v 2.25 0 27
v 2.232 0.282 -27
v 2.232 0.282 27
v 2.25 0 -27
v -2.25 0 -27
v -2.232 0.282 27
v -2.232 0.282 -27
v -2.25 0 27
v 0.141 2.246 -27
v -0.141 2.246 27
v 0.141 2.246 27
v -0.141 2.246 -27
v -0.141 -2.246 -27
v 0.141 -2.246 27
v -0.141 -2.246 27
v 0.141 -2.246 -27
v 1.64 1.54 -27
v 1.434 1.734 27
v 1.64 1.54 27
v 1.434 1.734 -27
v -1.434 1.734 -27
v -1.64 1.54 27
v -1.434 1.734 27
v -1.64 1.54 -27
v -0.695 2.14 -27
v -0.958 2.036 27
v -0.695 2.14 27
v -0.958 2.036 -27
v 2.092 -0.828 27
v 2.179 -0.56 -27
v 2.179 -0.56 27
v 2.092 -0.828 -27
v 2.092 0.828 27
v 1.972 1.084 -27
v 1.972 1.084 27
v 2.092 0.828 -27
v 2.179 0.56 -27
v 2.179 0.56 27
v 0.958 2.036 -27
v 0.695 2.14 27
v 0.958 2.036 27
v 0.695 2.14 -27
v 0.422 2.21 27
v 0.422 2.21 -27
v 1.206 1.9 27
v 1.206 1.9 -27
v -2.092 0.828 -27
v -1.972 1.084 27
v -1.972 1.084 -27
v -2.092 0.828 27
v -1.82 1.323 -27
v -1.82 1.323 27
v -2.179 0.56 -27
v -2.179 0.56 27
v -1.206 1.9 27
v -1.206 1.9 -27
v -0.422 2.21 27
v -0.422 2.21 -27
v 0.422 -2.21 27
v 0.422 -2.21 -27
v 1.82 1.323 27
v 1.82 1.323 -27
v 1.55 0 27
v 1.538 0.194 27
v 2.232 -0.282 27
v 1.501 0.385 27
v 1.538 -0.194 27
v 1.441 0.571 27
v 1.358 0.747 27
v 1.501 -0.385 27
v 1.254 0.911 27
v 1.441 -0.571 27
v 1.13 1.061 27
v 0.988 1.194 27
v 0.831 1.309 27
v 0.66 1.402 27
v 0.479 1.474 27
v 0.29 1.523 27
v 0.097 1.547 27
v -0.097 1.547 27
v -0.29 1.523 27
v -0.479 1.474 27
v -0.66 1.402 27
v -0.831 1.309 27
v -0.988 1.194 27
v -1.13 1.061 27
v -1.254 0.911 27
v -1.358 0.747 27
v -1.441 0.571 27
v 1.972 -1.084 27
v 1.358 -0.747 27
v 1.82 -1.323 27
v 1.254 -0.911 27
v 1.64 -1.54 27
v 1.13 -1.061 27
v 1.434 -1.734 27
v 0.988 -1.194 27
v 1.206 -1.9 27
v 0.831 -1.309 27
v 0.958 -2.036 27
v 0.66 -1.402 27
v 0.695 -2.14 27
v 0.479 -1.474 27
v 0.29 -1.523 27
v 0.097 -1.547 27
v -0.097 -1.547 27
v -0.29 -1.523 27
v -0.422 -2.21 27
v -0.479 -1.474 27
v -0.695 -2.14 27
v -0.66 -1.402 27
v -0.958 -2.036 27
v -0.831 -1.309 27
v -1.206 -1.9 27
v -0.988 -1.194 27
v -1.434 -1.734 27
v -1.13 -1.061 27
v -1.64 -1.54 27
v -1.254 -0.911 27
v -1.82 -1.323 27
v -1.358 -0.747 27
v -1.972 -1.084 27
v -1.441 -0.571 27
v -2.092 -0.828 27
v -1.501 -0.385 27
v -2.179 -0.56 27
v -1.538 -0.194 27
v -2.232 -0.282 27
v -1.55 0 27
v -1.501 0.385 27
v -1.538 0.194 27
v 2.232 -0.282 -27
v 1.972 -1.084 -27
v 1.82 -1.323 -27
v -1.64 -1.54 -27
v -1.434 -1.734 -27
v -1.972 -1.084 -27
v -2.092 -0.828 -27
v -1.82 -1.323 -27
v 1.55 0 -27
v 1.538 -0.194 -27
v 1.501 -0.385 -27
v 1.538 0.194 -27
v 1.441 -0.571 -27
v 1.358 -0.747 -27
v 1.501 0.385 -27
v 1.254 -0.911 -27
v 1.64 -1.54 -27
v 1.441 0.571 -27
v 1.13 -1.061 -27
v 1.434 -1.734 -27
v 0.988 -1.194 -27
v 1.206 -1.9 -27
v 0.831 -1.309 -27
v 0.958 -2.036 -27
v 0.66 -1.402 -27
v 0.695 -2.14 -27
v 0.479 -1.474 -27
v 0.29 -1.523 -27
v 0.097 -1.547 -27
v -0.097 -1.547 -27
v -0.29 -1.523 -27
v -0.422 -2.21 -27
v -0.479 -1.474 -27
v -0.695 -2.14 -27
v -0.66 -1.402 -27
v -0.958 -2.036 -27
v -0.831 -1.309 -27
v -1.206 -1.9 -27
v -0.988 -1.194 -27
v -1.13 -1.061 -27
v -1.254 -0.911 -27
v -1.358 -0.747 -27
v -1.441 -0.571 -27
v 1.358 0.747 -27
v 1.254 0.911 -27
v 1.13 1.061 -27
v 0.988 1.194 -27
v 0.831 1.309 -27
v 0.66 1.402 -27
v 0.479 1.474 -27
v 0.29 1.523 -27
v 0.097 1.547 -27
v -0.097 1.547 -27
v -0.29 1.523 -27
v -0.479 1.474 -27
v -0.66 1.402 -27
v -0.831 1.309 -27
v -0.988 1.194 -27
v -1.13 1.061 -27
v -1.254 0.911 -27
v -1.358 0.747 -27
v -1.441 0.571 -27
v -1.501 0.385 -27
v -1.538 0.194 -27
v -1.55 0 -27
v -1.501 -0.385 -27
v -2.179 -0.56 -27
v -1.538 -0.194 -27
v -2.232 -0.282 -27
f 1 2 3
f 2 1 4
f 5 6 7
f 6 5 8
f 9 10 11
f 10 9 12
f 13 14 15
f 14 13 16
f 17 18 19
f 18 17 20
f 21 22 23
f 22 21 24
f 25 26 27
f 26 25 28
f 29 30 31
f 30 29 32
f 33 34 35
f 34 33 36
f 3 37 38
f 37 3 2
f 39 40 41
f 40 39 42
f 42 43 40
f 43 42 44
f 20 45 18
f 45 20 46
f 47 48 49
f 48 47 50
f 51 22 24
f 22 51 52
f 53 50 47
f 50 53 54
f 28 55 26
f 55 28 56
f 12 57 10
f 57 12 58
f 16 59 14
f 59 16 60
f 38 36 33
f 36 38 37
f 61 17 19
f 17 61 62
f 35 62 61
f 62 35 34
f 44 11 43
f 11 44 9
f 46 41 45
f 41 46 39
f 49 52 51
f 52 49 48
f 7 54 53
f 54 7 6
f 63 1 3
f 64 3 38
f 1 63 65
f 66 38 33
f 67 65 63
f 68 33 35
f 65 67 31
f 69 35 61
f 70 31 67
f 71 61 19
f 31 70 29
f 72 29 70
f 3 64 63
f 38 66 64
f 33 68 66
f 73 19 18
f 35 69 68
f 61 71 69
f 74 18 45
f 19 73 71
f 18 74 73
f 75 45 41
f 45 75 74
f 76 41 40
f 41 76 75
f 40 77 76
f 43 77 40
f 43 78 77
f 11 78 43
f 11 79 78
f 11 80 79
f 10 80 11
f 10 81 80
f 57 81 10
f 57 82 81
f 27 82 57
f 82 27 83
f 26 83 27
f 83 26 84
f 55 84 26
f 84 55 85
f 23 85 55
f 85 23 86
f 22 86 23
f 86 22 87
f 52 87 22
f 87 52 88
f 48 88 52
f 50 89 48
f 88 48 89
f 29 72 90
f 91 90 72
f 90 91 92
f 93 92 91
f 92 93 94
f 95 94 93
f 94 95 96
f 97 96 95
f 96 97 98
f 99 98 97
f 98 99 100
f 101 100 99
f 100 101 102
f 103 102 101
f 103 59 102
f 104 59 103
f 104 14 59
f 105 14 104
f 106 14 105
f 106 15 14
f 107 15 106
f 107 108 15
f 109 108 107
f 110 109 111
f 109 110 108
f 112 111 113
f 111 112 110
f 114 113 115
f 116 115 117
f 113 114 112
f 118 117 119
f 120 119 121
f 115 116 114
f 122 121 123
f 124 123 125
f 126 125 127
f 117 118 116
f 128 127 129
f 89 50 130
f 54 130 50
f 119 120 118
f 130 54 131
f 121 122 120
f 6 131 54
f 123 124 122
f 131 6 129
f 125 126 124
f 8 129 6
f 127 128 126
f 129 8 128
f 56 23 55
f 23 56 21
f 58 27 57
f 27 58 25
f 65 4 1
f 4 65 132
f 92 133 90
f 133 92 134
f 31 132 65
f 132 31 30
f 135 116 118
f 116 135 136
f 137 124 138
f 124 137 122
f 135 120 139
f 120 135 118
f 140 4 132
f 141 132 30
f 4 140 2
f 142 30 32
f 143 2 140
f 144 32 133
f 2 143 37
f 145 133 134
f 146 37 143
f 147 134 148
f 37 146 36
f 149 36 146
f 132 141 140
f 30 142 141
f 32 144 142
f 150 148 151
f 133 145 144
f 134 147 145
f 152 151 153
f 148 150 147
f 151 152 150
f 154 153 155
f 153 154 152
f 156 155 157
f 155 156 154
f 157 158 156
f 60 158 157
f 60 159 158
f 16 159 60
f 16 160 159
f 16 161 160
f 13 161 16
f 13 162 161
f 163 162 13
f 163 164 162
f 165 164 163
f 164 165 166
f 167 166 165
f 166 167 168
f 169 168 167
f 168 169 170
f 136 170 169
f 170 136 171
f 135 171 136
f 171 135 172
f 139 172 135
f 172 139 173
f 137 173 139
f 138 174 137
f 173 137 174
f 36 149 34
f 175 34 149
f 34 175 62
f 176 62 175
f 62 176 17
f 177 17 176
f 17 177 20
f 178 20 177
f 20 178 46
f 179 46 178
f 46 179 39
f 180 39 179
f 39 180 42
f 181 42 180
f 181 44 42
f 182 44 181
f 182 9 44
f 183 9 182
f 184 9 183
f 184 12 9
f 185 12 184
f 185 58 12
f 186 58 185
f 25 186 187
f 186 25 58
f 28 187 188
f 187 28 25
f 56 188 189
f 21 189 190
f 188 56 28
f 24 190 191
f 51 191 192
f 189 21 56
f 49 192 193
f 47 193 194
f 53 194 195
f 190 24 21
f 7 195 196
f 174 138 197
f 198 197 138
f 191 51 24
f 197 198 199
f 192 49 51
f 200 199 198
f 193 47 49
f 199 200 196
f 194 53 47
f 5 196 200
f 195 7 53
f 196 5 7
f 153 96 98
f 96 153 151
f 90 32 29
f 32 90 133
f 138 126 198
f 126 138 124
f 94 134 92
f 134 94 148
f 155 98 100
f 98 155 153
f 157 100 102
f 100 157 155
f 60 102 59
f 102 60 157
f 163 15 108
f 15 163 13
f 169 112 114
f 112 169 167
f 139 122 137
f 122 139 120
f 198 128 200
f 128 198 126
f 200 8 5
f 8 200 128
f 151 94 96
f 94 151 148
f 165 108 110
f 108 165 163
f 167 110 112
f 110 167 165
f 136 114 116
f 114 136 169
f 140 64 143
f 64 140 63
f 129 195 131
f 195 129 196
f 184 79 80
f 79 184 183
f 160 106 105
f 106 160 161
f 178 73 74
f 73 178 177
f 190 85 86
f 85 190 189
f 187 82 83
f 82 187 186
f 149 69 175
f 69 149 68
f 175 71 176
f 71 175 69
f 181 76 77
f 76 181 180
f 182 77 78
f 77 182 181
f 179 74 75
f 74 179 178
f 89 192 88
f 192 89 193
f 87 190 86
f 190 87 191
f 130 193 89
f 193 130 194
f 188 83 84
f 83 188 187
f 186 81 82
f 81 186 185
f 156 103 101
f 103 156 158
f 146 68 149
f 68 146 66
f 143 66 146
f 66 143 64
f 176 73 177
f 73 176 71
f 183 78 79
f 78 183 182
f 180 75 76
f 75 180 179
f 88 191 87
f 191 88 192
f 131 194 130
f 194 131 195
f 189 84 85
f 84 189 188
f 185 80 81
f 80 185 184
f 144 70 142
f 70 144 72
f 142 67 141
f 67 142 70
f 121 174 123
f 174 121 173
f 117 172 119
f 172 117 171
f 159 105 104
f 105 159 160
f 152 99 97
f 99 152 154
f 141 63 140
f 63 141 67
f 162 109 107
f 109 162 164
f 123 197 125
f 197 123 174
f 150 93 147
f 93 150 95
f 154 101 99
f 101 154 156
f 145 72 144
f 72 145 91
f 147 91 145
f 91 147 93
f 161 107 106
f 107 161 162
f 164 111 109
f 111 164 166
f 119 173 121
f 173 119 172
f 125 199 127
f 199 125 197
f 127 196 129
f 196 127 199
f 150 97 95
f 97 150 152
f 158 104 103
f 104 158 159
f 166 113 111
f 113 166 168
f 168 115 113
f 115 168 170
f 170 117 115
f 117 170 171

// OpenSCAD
$fn = 50;


difference() {
	union() {
		translate(v = [0, 0, -27.0000000000]) {
			cylinder(h = 54, r = 2.2500000000);
		}
	}
	union() {
		translate(v = [0, 0, -100.0000000000]) {
			cylinder(h = 200, r = 1.5500000000);
		}
	}
}
